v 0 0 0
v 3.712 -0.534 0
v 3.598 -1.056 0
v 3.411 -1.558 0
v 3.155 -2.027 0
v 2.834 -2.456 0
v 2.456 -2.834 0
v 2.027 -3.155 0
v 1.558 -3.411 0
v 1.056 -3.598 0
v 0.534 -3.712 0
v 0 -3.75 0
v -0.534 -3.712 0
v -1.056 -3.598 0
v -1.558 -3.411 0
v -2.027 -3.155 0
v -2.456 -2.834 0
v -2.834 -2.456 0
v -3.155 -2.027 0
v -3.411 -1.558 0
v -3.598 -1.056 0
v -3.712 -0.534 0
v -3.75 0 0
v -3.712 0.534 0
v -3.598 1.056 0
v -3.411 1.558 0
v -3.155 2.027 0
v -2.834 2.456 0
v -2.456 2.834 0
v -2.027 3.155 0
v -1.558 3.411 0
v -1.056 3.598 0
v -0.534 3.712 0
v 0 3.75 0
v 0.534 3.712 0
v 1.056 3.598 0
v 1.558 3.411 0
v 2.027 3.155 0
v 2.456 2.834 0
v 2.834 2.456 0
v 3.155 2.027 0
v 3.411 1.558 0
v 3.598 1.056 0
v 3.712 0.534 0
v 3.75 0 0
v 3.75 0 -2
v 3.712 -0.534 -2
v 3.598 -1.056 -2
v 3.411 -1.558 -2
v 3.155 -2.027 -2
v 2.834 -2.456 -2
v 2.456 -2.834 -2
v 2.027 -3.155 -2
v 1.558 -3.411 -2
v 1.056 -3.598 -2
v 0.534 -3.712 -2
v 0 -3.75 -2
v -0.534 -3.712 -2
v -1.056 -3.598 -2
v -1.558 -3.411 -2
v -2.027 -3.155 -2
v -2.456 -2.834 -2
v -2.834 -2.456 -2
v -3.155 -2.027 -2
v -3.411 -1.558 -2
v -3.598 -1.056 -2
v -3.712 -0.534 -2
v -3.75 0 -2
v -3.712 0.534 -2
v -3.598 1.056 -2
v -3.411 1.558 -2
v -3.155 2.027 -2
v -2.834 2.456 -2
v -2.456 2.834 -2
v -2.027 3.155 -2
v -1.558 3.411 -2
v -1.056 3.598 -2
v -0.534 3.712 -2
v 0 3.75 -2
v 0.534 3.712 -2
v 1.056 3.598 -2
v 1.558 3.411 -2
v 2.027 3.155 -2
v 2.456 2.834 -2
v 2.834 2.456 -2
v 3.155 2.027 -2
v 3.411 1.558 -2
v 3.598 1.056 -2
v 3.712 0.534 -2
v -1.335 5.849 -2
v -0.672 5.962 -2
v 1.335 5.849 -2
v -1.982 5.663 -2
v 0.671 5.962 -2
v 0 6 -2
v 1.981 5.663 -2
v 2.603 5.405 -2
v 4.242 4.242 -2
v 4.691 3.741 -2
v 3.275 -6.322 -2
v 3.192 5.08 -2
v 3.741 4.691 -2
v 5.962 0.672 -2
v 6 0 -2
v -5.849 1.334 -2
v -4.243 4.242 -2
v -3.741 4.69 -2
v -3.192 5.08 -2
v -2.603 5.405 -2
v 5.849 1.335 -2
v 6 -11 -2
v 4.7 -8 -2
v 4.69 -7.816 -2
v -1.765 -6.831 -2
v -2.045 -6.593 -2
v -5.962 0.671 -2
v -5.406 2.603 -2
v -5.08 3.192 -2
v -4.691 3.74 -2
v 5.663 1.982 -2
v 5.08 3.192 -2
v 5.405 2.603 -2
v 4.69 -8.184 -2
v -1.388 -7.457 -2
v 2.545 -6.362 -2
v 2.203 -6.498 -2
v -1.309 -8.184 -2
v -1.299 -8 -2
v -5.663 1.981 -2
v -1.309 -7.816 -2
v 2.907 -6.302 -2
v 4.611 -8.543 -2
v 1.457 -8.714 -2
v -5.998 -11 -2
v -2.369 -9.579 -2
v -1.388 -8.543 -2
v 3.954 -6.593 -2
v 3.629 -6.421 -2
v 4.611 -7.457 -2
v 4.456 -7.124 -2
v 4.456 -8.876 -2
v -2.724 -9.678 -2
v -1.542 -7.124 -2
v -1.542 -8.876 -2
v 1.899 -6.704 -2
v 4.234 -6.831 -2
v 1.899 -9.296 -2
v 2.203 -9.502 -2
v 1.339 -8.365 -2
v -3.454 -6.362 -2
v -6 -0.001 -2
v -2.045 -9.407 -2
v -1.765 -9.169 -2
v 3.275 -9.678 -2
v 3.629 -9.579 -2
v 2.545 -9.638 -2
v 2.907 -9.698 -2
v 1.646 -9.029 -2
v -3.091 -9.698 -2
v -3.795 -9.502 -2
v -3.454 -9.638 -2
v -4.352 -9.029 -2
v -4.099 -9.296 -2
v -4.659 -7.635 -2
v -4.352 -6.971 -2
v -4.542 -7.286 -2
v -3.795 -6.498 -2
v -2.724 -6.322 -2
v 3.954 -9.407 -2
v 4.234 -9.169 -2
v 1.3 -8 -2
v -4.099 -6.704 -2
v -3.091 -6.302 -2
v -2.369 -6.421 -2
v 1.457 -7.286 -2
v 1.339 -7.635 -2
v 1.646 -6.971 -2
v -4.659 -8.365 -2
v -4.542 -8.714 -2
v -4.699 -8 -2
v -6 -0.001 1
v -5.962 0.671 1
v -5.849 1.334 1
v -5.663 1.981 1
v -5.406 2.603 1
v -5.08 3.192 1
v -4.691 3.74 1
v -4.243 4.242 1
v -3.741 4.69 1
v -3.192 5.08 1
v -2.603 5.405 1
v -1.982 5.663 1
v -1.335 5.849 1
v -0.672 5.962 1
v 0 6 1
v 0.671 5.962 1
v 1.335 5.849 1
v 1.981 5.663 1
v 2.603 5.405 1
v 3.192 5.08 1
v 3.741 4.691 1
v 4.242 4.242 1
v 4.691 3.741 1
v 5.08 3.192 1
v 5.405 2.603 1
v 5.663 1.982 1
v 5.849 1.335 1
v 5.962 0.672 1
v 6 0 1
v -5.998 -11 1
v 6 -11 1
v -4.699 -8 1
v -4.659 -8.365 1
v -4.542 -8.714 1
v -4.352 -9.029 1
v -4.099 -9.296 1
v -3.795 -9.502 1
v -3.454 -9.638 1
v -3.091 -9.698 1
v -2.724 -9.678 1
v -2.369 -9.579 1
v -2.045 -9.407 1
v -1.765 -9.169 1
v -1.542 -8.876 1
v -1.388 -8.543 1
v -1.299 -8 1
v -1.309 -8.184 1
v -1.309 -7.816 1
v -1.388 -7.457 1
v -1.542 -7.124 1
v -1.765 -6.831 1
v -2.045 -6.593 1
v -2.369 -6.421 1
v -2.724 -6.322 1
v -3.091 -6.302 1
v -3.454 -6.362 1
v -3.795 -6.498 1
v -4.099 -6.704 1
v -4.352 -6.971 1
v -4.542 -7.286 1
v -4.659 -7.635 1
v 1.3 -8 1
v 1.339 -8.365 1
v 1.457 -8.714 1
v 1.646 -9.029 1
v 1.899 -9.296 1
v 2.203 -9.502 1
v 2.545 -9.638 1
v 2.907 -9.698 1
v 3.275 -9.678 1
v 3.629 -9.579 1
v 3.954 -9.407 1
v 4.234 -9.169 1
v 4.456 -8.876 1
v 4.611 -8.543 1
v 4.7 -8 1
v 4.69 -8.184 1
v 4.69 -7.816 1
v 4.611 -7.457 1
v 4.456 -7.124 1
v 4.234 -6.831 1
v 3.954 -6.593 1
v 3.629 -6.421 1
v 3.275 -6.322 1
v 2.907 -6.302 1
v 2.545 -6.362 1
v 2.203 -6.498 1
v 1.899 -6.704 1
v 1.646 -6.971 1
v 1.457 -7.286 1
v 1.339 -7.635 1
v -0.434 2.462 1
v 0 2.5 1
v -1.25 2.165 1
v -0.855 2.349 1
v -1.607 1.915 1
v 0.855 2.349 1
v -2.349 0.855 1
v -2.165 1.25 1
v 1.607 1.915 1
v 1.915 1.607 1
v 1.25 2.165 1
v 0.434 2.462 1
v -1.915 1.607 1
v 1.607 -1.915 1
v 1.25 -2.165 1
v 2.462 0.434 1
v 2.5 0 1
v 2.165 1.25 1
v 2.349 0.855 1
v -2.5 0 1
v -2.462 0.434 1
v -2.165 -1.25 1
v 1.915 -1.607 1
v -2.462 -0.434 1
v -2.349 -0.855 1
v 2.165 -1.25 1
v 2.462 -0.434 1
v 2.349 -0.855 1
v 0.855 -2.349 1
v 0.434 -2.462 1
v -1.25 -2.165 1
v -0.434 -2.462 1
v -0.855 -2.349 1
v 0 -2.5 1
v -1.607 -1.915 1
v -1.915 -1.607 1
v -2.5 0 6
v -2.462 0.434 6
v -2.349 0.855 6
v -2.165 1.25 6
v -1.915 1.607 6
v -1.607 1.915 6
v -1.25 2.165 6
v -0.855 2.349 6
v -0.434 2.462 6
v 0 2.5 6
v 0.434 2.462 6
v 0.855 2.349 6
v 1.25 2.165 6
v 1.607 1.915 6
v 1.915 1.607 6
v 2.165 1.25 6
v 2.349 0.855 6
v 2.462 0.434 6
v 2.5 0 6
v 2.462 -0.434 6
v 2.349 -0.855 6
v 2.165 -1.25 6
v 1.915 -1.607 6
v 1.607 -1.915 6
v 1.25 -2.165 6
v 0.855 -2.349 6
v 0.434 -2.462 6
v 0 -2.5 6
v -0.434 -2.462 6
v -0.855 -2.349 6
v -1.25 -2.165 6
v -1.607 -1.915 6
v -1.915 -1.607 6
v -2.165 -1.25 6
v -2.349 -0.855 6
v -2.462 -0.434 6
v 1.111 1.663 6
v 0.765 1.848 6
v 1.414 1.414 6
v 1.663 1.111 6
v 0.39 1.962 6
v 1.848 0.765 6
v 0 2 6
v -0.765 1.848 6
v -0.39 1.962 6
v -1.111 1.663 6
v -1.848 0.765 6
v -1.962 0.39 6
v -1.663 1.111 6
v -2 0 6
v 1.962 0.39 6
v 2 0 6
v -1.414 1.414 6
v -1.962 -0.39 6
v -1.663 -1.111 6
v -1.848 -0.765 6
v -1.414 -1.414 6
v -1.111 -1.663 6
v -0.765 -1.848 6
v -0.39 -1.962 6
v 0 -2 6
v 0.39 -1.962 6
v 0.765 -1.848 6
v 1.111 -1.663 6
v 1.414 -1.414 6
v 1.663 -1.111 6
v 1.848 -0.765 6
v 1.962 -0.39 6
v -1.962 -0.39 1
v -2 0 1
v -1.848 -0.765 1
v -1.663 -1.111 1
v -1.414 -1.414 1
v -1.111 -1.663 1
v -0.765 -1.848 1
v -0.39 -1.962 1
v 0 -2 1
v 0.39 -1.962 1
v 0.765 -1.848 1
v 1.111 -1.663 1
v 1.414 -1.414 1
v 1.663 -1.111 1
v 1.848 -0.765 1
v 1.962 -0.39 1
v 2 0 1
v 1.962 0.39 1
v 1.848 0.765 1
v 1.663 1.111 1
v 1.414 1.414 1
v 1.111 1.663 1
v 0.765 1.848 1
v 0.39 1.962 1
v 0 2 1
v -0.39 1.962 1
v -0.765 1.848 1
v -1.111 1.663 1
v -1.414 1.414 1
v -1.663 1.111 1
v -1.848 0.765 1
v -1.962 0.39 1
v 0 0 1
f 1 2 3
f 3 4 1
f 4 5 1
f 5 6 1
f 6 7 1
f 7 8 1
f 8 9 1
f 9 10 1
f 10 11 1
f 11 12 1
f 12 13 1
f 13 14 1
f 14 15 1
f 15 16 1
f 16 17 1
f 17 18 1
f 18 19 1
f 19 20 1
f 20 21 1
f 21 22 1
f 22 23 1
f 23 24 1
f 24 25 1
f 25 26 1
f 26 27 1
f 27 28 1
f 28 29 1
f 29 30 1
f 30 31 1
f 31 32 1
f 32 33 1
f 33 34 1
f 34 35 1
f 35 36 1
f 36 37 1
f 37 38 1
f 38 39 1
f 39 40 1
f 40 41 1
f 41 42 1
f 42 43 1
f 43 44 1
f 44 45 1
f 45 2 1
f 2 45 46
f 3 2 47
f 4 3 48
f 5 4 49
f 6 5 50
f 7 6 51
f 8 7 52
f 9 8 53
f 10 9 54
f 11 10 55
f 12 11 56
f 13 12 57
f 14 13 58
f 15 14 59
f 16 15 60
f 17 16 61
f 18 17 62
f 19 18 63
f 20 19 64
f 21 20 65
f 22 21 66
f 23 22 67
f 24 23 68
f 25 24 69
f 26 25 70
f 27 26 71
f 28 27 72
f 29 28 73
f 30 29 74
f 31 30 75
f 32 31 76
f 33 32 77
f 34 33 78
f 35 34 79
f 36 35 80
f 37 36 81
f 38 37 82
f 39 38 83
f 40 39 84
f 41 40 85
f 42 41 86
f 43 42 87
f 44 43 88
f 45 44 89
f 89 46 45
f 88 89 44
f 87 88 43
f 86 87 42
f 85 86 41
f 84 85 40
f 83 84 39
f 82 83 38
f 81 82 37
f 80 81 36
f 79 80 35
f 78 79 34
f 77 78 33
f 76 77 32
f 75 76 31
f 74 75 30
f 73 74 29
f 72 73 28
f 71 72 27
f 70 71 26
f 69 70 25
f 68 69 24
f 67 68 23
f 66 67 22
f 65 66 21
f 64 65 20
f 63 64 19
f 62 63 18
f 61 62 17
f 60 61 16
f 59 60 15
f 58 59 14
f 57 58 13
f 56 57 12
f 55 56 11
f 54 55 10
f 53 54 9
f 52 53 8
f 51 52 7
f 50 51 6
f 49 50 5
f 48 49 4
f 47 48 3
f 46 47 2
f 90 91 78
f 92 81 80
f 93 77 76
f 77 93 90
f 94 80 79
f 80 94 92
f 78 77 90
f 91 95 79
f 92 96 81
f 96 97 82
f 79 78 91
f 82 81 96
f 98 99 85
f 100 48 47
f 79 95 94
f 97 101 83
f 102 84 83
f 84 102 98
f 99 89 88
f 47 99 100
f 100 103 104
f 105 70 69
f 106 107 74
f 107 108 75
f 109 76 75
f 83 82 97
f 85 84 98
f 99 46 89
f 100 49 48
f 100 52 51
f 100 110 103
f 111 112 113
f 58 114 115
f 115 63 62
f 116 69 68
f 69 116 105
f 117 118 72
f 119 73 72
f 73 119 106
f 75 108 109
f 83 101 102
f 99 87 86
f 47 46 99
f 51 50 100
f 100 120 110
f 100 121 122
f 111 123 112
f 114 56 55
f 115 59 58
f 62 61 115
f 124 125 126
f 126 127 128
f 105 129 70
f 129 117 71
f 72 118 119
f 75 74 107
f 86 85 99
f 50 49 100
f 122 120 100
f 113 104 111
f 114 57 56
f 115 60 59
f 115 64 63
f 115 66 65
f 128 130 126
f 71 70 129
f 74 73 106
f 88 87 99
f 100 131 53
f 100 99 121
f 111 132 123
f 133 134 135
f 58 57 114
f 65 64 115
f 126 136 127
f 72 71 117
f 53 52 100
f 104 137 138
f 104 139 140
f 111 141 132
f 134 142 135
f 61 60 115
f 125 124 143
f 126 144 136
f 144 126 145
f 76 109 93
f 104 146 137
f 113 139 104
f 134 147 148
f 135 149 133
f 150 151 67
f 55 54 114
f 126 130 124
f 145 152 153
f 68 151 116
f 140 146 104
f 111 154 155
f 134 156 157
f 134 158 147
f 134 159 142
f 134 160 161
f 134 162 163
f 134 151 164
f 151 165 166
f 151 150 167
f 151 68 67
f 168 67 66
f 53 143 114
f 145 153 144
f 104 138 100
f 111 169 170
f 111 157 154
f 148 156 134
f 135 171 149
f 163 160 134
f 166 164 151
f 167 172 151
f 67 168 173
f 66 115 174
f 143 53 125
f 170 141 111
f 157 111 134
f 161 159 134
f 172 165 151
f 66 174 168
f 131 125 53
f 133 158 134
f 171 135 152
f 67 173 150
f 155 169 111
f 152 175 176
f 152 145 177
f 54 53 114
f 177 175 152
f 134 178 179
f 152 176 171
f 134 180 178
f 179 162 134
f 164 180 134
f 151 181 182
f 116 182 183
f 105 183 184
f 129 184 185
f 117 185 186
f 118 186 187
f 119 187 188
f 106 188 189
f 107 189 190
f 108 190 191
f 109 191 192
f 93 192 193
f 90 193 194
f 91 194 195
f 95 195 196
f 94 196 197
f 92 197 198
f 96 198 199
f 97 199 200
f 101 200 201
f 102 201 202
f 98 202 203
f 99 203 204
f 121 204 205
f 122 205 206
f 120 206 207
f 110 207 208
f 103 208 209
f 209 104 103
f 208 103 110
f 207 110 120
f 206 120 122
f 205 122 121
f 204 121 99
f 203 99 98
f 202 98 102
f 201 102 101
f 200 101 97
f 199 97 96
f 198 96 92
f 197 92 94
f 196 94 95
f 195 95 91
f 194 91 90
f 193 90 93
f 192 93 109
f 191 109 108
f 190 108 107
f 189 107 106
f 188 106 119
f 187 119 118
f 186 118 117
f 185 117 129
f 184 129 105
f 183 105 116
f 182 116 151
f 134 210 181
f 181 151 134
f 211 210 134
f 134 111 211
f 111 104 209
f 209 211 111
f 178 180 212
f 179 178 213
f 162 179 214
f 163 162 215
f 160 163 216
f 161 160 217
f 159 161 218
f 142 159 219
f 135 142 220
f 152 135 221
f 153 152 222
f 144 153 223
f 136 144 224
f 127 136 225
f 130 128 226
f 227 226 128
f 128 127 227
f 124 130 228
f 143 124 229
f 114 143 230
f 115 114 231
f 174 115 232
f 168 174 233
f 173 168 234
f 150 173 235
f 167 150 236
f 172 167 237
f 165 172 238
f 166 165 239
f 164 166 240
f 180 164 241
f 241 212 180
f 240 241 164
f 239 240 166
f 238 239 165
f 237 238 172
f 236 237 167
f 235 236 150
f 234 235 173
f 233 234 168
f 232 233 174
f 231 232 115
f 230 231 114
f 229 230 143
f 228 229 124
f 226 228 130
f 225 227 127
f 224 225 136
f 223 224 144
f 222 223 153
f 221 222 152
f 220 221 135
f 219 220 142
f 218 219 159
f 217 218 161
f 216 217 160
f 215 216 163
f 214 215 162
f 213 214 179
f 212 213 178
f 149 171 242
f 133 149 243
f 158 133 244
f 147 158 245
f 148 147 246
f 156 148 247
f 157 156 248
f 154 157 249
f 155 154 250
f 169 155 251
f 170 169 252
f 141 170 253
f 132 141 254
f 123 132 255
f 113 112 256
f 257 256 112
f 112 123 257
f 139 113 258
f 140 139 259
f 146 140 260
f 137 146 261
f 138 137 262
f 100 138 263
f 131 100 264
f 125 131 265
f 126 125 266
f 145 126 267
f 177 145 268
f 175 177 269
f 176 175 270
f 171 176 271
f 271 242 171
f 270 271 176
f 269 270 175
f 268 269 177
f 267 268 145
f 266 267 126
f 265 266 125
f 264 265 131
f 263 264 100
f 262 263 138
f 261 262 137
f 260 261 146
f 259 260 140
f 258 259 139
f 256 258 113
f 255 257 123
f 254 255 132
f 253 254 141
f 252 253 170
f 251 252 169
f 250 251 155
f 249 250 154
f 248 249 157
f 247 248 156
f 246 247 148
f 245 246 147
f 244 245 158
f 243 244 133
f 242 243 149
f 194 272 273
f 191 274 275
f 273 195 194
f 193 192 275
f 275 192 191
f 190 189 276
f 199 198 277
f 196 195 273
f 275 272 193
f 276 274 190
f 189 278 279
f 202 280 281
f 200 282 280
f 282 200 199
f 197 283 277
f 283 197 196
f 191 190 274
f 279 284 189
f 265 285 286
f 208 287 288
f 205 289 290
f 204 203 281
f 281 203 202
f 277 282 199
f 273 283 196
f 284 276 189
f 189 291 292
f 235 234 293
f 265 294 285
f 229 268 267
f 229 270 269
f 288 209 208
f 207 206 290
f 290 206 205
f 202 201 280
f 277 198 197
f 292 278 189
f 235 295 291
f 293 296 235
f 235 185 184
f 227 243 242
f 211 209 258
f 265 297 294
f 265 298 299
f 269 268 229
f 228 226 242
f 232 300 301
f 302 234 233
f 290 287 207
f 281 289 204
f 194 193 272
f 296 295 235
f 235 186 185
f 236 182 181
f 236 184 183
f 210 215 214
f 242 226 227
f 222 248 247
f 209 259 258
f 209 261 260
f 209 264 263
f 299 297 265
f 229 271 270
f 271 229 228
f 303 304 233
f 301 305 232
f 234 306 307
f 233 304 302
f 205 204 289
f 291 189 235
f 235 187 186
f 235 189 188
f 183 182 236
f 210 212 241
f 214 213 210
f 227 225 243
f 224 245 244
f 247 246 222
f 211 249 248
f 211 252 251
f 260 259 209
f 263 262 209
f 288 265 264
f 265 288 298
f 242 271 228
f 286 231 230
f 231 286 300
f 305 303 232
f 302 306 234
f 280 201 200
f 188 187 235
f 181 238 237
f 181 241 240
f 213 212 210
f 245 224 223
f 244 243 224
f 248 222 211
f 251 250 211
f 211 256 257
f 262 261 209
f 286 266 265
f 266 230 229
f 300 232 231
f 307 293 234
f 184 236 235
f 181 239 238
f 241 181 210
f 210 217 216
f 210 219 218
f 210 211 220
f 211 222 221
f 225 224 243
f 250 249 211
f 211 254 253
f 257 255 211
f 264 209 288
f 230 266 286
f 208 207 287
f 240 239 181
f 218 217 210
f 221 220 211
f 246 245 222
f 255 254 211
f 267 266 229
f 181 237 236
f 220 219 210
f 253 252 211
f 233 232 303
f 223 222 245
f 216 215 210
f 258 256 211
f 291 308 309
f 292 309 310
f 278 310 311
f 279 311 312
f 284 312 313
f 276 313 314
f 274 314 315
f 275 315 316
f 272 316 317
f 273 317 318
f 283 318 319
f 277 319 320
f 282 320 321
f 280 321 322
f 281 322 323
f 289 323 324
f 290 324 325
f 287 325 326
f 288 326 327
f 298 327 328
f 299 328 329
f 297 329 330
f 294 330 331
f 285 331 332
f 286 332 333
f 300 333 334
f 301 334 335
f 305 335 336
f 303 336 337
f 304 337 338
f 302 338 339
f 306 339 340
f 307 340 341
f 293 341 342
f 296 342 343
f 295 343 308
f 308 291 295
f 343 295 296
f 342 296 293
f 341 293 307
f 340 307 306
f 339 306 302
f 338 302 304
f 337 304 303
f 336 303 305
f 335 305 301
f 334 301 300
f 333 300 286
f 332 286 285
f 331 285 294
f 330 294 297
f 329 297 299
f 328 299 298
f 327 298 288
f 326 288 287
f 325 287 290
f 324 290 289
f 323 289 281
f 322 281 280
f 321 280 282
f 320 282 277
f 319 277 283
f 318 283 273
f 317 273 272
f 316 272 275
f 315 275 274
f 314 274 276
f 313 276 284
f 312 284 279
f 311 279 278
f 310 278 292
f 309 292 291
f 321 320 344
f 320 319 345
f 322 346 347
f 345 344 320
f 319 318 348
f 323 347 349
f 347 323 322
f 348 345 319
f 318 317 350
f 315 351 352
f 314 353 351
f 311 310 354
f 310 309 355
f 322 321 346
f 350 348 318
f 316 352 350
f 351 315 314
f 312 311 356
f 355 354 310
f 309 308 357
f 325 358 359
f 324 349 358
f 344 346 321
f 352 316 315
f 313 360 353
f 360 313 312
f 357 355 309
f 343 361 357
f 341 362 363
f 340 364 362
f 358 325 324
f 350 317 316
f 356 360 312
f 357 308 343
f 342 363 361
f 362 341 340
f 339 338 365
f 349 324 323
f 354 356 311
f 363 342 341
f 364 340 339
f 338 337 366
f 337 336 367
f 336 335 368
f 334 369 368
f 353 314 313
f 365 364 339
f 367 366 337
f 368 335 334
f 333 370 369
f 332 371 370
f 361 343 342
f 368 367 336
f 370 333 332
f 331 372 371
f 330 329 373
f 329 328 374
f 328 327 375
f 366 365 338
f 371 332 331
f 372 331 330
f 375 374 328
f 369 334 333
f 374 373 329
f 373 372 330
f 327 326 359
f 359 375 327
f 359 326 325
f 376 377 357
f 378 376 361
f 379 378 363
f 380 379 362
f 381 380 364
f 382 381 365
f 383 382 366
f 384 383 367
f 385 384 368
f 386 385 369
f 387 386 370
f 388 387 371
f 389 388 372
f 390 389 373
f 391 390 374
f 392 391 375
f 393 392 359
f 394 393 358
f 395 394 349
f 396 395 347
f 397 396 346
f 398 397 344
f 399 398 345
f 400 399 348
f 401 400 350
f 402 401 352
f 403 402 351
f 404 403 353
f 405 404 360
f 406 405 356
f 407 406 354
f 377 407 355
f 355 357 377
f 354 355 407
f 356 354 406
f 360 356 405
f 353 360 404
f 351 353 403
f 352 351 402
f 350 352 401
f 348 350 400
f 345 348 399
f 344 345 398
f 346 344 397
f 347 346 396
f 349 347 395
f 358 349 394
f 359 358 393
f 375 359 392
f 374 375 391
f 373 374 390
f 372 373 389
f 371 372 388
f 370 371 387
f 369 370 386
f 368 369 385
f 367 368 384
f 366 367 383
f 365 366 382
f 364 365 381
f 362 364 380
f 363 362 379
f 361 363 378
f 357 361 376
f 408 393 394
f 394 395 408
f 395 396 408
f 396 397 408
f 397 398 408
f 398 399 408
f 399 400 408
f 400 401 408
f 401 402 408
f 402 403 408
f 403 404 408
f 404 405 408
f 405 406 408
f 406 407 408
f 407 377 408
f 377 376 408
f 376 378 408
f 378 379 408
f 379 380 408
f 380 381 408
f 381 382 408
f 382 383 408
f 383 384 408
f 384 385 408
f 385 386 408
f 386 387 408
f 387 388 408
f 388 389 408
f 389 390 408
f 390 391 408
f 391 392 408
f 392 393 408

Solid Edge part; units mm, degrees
sketch "Sketch1" plane through (0, 0, 0) normal (0, 0, 1) x (1, 0, 0)
  line L0 (5.9995, 0) -> (5.9995, -11)
  line L1 (-5.9984, -11) -> (5.9995, -11)
  line L2 (-5.9995, -0.0006) -> (-5.9984, -11)
  arc A0 (-5.9995, -0.0006) -> (5.9995, 0) centre (0, 0) cw
  circle A1 centre (-2.9987, -8) radius 1.7
  circle A2 centre (2.9995, -8) radius 1.7
extrude "Protrusion1" add sketch "Sketch1" along normal blind 1
sketch "Sketch2" plane through (0, 0, 0) normal (0, 0, 1) x (1, 0, 0)
  line L0 (5.9995, 0) -> (5.9995, -11)
  line L1 (-5.9984, -11) -> (5.9995, -11)
  line L2 (-5.9995, -0.0006) -> (-5.9984, -11)
  arc A0 (-5.9995, -0.0006) -> (5.9995, 0) centre (0, 0) cw
  circle A1 centre (0, 0) radius 3.75
  circle A2 centre (2.9995, -8) radius 1.7
  circle A3 centre (-2.9987, -8) radius 1.7
extrude "ExtrudedProtrusion_3" add sketch "Sketch2" against normal blind 2
sketch "Sketch3" plane through (0, -2.5002, 1) normal (0, 0, 1) x (1, 0, 0)
  circle A0 centre (0, 2.5002) radius 2.5
  circle A1 centre (0, 2.5002) radius 2
extrude "ExtrudedProtrusion_4" add sketch "Sketch3" along normal blind 5
